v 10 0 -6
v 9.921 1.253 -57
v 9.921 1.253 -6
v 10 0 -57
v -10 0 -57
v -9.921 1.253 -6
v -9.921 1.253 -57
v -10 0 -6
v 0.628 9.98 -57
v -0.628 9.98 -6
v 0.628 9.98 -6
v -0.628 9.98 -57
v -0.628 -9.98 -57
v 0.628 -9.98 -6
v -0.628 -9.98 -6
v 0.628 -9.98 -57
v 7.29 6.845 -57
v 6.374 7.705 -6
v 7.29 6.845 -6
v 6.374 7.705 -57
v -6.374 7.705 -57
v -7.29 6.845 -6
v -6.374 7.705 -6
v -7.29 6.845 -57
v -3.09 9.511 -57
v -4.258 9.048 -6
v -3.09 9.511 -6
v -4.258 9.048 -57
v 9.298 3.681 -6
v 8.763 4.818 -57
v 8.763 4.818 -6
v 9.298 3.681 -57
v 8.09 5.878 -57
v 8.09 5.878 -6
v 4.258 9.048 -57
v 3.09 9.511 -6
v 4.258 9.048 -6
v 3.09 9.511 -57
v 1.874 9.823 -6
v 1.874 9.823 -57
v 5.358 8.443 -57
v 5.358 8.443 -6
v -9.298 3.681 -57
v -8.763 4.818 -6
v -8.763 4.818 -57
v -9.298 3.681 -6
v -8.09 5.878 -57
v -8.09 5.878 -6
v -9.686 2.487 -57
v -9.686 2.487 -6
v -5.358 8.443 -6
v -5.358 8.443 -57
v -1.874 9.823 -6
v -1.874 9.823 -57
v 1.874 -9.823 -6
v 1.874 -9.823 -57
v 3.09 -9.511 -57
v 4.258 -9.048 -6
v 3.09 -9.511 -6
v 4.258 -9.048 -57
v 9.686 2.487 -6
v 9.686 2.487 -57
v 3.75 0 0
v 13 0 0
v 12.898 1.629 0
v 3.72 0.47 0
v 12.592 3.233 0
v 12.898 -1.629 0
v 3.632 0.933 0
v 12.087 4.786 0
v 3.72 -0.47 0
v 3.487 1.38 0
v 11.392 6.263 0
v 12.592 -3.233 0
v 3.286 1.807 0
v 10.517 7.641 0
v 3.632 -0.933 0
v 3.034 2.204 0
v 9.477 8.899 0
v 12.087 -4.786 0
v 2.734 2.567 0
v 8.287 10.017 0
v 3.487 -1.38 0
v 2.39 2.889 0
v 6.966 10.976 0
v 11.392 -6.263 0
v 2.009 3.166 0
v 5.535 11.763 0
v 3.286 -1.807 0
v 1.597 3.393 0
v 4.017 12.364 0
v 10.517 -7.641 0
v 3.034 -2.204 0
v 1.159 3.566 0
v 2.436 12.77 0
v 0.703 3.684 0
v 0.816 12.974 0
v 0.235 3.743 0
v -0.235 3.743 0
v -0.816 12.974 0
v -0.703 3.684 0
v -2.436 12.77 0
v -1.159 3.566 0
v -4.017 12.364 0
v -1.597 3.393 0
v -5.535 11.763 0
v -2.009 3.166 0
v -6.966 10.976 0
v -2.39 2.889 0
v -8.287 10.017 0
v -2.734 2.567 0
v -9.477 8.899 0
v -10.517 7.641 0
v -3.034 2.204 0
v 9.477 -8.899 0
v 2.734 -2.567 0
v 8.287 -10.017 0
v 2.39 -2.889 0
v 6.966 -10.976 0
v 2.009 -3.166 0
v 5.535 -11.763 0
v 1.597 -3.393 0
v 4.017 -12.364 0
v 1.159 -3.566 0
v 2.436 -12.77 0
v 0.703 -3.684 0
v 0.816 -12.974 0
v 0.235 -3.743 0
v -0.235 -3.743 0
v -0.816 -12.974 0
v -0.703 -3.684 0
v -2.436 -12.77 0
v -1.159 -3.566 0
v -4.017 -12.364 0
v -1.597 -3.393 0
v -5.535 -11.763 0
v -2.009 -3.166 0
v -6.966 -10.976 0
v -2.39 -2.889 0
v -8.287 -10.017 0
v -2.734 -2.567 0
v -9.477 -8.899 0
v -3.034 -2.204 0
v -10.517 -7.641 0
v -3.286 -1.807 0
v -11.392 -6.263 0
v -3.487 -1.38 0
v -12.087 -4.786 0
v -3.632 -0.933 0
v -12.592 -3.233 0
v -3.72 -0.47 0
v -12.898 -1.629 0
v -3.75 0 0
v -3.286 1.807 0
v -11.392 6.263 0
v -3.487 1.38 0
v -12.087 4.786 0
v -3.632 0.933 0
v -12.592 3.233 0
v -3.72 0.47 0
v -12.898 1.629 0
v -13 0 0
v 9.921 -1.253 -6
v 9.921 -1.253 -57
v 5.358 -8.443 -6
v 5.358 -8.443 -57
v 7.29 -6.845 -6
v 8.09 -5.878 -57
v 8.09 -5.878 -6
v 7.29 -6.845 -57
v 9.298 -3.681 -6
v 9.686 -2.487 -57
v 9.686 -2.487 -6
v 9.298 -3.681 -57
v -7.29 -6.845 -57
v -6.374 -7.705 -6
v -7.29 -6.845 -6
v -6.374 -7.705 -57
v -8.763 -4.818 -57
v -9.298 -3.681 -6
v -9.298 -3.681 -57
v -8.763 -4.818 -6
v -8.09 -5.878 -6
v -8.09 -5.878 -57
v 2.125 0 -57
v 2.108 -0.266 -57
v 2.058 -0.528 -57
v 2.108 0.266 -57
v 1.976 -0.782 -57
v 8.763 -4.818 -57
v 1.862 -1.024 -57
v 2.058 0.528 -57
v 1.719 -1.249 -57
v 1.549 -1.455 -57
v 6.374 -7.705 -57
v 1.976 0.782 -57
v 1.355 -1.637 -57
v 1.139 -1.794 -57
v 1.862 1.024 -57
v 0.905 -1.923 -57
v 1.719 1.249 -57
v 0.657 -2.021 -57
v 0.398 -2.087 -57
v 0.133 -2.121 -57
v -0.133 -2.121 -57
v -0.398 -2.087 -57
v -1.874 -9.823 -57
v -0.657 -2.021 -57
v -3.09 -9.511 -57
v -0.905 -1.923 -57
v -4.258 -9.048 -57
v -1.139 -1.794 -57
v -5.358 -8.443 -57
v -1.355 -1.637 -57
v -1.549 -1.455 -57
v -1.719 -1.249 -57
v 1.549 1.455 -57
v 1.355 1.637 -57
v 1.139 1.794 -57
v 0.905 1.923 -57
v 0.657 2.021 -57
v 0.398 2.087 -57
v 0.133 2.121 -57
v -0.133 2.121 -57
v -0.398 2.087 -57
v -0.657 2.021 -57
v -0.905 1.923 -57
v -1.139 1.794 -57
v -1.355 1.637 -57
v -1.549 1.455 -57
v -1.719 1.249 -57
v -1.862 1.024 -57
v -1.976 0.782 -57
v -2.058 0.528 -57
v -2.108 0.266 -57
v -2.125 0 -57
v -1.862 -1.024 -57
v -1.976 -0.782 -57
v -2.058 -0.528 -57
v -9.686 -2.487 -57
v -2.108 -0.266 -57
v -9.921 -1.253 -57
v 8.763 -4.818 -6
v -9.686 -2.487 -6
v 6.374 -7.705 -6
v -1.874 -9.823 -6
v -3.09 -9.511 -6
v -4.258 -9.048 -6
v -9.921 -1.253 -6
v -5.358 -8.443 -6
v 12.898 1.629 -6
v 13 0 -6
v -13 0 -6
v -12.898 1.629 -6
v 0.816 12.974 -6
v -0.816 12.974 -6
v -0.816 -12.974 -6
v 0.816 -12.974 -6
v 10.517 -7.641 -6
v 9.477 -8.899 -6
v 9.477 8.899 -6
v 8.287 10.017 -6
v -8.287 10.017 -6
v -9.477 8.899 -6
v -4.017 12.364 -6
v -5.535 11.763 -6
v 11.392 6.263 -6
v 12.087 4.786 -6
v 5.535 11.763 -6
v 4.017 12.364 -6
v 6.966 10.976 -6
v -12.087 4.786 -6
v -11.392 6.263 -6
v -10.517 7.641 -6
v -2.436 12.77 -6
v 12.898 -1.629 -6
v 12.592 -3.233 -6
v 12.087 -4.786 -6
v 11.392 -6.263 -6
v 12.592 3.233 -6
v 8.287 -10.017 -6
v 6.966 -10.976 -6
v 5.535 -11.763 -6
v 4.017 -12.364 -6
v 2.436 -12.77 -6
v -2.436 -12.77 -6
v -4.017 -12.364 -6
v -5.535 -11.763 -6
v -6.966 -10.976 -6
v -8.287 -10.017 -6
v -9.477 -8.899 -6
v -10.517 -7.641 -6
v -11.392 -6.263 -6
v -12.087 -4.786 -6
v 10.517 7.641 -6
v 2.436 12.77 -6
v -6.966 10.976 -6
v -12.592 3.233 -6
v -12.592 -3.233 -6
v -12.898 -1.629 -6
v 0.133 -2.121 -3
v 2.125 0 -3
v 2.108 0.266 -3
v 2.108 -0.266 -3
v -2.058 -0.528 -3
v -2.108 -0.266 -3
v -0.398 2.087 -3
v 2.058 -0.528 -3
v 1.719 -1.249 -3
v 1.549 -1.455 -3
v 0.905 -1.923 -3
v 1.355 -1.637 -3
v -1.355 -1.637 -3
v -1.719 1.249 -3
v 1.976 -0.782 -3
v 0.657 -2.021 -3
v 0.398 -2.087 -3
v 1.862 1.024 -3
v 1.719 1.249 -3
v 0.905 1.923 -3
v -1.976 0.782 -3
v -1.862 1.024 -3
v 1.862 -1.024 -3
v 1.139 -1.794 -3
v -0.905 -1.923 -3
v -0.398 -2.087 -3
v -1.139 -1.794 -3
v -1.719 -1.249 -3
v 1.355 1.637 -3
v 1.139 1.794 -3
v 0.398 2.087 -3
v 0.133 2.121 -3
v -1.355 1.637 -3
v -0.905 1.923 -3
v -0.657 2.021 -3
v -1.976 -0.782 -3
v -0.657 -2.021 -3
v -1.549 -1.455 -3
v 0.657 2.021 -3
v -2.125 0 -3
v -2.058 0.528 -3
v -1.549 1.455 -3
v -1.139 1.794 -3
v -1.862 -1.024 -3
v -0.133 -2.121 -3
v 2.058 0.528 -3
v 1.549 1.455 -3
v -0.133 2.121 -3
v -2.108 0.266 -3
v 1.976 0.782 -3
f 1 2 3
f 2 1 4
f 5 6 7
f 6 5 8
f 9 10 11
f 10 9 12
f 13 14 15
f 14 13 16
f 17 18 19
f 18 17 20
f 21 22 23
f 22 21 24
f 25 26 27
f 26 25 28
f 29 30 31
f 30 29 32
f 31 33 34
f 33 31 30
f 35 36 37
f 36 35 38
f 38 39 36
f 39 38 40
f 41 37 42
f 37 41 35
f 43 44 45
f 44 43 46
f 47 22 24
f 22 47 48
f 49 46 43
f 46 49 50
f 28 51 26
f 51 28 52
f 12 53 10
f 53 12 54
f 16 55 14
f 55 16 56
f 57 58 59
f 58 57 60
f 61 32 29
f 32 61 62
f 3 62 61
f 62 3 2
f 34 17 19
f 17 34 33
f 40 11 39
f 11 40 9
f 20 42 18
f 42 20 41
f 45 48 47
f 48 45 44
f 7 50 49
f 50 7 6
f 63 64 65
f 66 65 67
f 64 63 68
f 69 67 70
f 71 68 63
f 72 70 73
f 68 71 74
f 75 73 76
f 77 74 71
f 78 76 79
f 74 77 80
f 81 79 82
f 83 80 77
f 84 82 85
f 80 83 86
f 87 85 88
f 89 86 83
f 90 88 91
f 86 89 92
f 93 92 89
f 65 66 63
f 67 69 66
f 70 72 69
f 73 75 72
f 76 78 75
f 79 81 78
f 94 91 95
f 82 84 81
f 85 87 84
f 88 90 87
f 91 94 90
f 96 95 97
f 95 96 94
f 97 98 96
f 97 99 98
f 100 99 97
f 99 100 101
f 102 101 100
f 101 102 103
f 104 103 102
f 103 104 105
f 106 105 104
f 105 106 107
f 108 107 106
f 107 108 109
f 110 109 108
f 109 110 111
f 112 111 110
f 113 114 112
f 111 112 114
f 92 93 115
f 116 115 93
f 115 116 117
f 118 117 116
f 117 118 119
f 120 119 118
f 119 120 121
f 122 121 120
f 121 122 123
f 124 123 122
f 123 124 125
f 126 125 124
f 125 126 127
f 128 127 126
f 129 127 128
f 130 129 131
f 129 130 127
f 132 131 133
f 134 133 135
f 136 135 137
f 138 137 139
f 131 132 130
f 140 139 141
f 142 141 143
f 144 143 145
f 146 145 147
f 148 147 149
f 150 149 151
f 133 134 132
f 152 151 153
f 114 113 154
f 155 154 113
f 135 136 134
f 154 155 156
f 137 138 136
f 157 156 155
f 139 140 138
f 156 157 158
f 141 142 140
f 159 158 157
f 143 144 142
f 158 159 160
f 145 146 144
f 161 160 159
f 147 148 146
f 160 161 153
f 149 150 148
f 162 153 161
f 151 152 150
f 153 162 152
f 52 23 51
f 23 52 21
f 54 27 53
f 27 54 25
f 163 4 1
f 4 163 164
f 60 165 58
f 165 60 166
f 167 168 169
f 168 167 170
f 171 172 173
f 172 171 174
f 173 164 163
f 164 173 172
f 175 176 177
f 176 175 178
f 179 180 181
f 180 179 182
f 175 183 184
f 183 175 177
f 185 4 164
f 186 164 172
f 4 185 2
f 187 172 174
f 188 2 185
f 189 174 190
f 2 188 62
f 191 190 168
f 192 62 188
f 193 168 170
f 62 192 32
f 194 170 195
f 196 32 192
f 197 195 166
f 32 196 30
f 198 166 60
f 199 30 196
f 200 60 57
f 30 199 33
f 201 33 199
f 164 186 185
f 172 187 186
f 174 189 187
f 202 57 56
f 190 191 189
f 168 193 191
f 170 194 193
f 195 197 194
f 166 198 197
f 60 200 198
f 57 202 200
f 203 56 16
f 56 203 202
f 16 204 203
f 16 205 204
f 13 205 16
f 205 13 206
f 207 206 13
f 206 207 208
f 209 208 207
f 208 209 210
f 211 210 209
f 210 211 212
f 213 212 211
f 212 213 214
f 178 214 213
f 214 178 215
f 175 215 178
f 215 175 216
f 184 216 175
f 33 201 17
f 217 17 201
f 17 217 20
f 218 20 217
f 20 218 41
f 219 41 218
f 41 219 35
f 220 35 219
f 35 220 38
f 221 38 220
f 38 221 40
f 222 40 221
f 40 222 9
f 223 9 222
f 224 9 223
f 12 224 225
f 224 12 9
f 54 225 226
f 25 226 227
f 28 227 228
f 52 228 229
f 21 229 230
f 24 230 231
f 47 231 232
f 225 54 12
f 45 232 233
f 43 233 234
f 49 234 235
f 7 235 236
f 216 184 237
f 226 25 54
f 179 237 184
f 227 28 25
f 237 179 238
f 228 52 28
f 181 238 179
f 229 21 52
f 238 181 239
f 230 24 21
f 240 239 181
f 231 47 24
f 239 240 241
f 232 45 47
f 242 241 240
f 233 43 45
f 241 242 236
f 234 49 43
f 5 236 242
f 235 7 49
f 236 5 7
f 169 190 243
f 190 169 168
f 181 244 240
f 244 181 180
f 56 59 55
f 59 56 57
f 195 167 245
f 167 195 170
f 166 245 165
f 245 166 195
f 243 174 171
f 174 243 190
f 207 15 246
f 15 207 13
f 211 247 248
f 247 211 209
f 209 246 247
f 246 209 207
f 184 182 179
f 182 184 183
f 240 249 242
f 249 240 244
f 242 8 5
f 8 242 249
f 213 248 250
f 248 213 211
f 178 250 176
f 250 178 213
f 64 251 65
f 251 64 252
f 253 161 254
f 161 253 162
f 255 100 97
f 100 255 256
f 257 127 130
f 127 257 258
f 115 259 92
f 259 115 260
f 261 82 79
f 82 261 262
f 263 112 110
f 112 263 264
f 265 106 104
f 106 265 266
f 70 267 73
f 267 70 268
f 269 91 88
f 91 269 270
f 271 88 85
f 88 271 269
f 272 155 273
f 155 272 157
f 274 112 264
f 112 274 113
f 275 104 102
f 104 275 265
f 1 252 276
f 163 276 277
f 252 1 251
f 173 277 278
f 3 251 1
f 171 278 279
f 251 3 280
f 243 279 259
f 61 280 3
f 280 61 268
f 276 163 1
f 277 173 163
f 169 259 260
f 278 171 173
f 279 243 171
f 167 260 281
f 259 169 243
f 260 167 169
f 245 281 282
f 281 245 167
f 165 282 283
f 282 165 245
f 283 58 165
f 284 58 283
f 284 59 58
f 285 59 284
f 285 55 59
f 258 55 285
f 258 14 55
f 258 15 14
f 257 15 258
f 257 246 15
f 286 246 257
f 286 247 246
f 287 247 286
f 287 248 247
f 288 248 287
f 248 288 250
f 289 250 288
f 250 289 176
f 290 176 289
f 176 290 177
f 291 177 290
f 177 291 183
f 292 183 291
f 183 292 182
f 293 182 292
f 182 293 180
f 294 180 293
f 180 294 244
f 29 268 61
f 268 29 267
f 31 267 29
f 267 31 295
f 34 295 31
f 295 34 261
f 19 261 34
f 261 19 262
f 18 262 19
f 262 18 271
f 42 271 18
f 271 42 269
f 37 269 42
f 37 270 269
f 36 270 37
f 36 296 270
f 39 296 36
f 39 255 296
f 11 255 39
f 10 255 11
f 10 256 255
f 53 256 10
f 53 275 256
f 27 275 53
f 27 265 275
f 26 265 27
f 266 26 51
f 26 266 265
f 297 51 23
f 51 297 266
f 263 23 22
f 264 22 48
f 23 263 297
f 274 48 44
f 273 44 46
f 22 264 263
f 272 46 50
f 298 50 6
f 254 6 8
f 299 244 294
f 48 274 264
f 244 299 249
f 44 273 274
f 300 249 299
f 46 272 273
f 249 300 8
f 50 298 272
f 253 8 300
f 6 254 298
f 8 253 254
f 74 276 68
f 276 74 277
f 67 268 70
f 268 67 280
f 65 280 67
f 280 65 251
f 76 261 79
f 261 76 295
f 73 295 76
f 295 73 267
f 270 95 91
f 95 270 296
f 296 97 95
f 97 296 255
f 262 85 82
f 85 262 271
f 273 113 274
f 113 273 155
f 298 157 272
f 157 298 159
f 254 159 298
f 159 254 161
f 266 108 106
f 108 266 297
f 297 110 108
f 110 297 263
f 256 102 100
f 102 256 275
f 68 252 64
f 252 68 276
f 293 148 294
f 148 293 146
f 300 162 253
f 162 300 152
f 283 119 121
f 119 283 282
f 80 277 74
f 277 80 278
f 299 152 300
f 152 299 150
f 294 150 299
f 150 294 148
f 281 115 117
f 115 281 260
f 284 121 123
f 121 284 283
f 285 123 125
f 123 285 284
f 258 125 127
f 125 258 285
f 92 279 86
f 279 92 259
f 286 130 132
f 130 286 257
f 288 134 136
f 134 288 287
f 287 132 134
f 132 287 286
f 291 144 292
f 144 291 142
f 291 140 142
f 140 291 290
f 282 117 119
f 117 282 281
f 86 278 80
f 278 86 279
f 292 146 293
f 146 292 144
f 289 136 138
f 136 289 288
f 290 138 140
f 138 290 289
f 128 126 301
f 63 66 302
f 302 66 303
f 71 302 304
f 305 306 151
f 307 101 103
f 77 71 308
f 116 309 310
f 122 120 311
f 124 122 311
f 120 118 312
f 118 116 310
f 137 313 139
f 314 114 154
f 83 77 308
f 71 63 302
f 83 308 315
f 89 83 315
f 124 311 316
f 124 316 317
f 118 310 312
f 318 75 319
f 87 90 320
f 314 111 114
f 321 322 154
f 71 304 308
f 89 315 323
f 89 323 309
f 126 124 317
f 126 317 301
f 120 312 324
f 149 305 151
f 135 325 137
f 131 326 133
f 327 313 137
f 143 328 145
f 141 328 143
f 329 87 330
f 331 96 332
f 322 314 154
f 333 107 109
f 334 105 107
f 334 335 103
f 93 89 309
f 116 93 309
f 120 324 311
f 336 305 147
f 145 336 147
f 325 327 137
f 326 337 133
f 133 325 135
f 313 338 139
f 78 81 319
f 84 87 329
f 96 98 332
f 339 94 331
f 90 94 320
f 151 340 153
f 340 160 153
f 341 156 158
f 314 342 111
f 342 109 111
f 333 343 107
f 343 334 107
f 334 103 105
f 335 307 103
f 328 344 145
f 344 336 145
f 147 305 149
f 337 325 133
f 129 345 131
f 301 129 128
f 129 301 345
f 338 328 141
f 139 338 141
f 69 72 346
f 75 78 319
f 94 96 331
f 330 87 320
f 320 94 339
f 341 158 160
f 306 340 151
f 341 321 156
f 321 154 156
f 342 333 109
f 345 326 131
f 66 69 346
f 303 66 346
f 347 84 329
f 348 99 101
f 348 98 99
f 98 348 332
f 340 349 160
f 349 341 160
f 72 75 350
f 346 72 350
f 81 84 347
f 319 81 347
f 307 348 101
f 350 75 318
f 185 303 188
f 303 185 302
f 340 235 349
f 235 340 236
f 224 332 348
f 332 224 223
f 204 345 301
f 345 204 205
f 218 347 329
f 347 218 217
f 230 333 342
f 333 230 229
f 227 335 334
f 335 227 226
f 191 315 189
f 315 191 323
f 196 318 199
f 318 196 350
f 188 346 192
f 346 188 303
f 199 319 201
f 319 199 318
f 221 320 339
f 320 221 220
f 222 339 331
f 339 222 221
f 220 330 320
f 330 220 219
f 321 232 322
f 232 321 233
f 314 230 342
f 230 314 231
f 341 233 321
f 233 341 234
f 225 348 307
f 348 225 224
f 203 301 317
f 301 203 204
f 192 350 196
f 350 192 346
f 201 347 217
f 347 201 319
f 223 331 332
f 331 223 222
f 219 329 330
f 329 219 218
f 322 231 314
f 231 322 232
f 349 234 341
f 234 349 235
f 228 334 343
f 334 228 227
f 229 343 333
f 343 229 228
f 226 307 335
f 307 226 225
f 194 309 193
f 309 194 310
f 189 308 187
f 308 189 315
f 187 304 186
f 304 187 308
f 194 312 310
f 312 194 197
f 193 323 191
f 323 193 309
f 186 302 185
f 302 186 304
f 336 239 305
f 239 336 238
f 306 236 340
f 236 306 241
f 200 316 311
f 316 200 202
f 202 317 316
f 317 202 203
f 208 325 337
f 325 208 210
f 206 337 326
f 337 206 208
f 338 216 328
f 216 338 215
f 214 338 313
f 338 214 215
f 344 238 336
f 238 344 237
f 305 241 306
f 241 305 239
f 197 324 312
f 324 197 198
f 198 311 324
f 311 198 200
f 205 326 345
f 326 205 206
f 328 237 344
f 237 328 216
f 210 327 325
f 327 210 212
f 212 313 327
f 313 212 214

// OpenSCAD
$fn = 50;


difference() {
	union() {
		translate(v = [0, 0, -57.0000000000]) {
			cylinder(h = 57, r = 10.0000000000);
		}
		translate(v = [0, 0, -6.0000000000]) {
			cylinder(h = 6, r = 13.0000000000);
		}
	}
	union() {
		translate(v = [0, 0, 0]) {
			rotate(a = [0, 0, 0]) {
				difference() {
					union() {
						#translate(v = [0, 0, -57.0000000000]) {
							cylinder(h = 57, r = 2.0000000000);
						}
						#translate(v = [0, 0, -3]) {
							cylinder(h = 3, r = 10.0000000000, r1 = 2.1250000000, r2 = 3.7500000000);
						}
						#translate(v = [0, 0, -57.0000000000]) {
							cylinder(h = 57, r = 2.1250000000);
						}
						#translate(v = [0, 0, -57.0000000000]) {
							cylinder(h = 57, r = 2.0000000000);
						}
					}
					union();
				}
			}
		}
	}
}
